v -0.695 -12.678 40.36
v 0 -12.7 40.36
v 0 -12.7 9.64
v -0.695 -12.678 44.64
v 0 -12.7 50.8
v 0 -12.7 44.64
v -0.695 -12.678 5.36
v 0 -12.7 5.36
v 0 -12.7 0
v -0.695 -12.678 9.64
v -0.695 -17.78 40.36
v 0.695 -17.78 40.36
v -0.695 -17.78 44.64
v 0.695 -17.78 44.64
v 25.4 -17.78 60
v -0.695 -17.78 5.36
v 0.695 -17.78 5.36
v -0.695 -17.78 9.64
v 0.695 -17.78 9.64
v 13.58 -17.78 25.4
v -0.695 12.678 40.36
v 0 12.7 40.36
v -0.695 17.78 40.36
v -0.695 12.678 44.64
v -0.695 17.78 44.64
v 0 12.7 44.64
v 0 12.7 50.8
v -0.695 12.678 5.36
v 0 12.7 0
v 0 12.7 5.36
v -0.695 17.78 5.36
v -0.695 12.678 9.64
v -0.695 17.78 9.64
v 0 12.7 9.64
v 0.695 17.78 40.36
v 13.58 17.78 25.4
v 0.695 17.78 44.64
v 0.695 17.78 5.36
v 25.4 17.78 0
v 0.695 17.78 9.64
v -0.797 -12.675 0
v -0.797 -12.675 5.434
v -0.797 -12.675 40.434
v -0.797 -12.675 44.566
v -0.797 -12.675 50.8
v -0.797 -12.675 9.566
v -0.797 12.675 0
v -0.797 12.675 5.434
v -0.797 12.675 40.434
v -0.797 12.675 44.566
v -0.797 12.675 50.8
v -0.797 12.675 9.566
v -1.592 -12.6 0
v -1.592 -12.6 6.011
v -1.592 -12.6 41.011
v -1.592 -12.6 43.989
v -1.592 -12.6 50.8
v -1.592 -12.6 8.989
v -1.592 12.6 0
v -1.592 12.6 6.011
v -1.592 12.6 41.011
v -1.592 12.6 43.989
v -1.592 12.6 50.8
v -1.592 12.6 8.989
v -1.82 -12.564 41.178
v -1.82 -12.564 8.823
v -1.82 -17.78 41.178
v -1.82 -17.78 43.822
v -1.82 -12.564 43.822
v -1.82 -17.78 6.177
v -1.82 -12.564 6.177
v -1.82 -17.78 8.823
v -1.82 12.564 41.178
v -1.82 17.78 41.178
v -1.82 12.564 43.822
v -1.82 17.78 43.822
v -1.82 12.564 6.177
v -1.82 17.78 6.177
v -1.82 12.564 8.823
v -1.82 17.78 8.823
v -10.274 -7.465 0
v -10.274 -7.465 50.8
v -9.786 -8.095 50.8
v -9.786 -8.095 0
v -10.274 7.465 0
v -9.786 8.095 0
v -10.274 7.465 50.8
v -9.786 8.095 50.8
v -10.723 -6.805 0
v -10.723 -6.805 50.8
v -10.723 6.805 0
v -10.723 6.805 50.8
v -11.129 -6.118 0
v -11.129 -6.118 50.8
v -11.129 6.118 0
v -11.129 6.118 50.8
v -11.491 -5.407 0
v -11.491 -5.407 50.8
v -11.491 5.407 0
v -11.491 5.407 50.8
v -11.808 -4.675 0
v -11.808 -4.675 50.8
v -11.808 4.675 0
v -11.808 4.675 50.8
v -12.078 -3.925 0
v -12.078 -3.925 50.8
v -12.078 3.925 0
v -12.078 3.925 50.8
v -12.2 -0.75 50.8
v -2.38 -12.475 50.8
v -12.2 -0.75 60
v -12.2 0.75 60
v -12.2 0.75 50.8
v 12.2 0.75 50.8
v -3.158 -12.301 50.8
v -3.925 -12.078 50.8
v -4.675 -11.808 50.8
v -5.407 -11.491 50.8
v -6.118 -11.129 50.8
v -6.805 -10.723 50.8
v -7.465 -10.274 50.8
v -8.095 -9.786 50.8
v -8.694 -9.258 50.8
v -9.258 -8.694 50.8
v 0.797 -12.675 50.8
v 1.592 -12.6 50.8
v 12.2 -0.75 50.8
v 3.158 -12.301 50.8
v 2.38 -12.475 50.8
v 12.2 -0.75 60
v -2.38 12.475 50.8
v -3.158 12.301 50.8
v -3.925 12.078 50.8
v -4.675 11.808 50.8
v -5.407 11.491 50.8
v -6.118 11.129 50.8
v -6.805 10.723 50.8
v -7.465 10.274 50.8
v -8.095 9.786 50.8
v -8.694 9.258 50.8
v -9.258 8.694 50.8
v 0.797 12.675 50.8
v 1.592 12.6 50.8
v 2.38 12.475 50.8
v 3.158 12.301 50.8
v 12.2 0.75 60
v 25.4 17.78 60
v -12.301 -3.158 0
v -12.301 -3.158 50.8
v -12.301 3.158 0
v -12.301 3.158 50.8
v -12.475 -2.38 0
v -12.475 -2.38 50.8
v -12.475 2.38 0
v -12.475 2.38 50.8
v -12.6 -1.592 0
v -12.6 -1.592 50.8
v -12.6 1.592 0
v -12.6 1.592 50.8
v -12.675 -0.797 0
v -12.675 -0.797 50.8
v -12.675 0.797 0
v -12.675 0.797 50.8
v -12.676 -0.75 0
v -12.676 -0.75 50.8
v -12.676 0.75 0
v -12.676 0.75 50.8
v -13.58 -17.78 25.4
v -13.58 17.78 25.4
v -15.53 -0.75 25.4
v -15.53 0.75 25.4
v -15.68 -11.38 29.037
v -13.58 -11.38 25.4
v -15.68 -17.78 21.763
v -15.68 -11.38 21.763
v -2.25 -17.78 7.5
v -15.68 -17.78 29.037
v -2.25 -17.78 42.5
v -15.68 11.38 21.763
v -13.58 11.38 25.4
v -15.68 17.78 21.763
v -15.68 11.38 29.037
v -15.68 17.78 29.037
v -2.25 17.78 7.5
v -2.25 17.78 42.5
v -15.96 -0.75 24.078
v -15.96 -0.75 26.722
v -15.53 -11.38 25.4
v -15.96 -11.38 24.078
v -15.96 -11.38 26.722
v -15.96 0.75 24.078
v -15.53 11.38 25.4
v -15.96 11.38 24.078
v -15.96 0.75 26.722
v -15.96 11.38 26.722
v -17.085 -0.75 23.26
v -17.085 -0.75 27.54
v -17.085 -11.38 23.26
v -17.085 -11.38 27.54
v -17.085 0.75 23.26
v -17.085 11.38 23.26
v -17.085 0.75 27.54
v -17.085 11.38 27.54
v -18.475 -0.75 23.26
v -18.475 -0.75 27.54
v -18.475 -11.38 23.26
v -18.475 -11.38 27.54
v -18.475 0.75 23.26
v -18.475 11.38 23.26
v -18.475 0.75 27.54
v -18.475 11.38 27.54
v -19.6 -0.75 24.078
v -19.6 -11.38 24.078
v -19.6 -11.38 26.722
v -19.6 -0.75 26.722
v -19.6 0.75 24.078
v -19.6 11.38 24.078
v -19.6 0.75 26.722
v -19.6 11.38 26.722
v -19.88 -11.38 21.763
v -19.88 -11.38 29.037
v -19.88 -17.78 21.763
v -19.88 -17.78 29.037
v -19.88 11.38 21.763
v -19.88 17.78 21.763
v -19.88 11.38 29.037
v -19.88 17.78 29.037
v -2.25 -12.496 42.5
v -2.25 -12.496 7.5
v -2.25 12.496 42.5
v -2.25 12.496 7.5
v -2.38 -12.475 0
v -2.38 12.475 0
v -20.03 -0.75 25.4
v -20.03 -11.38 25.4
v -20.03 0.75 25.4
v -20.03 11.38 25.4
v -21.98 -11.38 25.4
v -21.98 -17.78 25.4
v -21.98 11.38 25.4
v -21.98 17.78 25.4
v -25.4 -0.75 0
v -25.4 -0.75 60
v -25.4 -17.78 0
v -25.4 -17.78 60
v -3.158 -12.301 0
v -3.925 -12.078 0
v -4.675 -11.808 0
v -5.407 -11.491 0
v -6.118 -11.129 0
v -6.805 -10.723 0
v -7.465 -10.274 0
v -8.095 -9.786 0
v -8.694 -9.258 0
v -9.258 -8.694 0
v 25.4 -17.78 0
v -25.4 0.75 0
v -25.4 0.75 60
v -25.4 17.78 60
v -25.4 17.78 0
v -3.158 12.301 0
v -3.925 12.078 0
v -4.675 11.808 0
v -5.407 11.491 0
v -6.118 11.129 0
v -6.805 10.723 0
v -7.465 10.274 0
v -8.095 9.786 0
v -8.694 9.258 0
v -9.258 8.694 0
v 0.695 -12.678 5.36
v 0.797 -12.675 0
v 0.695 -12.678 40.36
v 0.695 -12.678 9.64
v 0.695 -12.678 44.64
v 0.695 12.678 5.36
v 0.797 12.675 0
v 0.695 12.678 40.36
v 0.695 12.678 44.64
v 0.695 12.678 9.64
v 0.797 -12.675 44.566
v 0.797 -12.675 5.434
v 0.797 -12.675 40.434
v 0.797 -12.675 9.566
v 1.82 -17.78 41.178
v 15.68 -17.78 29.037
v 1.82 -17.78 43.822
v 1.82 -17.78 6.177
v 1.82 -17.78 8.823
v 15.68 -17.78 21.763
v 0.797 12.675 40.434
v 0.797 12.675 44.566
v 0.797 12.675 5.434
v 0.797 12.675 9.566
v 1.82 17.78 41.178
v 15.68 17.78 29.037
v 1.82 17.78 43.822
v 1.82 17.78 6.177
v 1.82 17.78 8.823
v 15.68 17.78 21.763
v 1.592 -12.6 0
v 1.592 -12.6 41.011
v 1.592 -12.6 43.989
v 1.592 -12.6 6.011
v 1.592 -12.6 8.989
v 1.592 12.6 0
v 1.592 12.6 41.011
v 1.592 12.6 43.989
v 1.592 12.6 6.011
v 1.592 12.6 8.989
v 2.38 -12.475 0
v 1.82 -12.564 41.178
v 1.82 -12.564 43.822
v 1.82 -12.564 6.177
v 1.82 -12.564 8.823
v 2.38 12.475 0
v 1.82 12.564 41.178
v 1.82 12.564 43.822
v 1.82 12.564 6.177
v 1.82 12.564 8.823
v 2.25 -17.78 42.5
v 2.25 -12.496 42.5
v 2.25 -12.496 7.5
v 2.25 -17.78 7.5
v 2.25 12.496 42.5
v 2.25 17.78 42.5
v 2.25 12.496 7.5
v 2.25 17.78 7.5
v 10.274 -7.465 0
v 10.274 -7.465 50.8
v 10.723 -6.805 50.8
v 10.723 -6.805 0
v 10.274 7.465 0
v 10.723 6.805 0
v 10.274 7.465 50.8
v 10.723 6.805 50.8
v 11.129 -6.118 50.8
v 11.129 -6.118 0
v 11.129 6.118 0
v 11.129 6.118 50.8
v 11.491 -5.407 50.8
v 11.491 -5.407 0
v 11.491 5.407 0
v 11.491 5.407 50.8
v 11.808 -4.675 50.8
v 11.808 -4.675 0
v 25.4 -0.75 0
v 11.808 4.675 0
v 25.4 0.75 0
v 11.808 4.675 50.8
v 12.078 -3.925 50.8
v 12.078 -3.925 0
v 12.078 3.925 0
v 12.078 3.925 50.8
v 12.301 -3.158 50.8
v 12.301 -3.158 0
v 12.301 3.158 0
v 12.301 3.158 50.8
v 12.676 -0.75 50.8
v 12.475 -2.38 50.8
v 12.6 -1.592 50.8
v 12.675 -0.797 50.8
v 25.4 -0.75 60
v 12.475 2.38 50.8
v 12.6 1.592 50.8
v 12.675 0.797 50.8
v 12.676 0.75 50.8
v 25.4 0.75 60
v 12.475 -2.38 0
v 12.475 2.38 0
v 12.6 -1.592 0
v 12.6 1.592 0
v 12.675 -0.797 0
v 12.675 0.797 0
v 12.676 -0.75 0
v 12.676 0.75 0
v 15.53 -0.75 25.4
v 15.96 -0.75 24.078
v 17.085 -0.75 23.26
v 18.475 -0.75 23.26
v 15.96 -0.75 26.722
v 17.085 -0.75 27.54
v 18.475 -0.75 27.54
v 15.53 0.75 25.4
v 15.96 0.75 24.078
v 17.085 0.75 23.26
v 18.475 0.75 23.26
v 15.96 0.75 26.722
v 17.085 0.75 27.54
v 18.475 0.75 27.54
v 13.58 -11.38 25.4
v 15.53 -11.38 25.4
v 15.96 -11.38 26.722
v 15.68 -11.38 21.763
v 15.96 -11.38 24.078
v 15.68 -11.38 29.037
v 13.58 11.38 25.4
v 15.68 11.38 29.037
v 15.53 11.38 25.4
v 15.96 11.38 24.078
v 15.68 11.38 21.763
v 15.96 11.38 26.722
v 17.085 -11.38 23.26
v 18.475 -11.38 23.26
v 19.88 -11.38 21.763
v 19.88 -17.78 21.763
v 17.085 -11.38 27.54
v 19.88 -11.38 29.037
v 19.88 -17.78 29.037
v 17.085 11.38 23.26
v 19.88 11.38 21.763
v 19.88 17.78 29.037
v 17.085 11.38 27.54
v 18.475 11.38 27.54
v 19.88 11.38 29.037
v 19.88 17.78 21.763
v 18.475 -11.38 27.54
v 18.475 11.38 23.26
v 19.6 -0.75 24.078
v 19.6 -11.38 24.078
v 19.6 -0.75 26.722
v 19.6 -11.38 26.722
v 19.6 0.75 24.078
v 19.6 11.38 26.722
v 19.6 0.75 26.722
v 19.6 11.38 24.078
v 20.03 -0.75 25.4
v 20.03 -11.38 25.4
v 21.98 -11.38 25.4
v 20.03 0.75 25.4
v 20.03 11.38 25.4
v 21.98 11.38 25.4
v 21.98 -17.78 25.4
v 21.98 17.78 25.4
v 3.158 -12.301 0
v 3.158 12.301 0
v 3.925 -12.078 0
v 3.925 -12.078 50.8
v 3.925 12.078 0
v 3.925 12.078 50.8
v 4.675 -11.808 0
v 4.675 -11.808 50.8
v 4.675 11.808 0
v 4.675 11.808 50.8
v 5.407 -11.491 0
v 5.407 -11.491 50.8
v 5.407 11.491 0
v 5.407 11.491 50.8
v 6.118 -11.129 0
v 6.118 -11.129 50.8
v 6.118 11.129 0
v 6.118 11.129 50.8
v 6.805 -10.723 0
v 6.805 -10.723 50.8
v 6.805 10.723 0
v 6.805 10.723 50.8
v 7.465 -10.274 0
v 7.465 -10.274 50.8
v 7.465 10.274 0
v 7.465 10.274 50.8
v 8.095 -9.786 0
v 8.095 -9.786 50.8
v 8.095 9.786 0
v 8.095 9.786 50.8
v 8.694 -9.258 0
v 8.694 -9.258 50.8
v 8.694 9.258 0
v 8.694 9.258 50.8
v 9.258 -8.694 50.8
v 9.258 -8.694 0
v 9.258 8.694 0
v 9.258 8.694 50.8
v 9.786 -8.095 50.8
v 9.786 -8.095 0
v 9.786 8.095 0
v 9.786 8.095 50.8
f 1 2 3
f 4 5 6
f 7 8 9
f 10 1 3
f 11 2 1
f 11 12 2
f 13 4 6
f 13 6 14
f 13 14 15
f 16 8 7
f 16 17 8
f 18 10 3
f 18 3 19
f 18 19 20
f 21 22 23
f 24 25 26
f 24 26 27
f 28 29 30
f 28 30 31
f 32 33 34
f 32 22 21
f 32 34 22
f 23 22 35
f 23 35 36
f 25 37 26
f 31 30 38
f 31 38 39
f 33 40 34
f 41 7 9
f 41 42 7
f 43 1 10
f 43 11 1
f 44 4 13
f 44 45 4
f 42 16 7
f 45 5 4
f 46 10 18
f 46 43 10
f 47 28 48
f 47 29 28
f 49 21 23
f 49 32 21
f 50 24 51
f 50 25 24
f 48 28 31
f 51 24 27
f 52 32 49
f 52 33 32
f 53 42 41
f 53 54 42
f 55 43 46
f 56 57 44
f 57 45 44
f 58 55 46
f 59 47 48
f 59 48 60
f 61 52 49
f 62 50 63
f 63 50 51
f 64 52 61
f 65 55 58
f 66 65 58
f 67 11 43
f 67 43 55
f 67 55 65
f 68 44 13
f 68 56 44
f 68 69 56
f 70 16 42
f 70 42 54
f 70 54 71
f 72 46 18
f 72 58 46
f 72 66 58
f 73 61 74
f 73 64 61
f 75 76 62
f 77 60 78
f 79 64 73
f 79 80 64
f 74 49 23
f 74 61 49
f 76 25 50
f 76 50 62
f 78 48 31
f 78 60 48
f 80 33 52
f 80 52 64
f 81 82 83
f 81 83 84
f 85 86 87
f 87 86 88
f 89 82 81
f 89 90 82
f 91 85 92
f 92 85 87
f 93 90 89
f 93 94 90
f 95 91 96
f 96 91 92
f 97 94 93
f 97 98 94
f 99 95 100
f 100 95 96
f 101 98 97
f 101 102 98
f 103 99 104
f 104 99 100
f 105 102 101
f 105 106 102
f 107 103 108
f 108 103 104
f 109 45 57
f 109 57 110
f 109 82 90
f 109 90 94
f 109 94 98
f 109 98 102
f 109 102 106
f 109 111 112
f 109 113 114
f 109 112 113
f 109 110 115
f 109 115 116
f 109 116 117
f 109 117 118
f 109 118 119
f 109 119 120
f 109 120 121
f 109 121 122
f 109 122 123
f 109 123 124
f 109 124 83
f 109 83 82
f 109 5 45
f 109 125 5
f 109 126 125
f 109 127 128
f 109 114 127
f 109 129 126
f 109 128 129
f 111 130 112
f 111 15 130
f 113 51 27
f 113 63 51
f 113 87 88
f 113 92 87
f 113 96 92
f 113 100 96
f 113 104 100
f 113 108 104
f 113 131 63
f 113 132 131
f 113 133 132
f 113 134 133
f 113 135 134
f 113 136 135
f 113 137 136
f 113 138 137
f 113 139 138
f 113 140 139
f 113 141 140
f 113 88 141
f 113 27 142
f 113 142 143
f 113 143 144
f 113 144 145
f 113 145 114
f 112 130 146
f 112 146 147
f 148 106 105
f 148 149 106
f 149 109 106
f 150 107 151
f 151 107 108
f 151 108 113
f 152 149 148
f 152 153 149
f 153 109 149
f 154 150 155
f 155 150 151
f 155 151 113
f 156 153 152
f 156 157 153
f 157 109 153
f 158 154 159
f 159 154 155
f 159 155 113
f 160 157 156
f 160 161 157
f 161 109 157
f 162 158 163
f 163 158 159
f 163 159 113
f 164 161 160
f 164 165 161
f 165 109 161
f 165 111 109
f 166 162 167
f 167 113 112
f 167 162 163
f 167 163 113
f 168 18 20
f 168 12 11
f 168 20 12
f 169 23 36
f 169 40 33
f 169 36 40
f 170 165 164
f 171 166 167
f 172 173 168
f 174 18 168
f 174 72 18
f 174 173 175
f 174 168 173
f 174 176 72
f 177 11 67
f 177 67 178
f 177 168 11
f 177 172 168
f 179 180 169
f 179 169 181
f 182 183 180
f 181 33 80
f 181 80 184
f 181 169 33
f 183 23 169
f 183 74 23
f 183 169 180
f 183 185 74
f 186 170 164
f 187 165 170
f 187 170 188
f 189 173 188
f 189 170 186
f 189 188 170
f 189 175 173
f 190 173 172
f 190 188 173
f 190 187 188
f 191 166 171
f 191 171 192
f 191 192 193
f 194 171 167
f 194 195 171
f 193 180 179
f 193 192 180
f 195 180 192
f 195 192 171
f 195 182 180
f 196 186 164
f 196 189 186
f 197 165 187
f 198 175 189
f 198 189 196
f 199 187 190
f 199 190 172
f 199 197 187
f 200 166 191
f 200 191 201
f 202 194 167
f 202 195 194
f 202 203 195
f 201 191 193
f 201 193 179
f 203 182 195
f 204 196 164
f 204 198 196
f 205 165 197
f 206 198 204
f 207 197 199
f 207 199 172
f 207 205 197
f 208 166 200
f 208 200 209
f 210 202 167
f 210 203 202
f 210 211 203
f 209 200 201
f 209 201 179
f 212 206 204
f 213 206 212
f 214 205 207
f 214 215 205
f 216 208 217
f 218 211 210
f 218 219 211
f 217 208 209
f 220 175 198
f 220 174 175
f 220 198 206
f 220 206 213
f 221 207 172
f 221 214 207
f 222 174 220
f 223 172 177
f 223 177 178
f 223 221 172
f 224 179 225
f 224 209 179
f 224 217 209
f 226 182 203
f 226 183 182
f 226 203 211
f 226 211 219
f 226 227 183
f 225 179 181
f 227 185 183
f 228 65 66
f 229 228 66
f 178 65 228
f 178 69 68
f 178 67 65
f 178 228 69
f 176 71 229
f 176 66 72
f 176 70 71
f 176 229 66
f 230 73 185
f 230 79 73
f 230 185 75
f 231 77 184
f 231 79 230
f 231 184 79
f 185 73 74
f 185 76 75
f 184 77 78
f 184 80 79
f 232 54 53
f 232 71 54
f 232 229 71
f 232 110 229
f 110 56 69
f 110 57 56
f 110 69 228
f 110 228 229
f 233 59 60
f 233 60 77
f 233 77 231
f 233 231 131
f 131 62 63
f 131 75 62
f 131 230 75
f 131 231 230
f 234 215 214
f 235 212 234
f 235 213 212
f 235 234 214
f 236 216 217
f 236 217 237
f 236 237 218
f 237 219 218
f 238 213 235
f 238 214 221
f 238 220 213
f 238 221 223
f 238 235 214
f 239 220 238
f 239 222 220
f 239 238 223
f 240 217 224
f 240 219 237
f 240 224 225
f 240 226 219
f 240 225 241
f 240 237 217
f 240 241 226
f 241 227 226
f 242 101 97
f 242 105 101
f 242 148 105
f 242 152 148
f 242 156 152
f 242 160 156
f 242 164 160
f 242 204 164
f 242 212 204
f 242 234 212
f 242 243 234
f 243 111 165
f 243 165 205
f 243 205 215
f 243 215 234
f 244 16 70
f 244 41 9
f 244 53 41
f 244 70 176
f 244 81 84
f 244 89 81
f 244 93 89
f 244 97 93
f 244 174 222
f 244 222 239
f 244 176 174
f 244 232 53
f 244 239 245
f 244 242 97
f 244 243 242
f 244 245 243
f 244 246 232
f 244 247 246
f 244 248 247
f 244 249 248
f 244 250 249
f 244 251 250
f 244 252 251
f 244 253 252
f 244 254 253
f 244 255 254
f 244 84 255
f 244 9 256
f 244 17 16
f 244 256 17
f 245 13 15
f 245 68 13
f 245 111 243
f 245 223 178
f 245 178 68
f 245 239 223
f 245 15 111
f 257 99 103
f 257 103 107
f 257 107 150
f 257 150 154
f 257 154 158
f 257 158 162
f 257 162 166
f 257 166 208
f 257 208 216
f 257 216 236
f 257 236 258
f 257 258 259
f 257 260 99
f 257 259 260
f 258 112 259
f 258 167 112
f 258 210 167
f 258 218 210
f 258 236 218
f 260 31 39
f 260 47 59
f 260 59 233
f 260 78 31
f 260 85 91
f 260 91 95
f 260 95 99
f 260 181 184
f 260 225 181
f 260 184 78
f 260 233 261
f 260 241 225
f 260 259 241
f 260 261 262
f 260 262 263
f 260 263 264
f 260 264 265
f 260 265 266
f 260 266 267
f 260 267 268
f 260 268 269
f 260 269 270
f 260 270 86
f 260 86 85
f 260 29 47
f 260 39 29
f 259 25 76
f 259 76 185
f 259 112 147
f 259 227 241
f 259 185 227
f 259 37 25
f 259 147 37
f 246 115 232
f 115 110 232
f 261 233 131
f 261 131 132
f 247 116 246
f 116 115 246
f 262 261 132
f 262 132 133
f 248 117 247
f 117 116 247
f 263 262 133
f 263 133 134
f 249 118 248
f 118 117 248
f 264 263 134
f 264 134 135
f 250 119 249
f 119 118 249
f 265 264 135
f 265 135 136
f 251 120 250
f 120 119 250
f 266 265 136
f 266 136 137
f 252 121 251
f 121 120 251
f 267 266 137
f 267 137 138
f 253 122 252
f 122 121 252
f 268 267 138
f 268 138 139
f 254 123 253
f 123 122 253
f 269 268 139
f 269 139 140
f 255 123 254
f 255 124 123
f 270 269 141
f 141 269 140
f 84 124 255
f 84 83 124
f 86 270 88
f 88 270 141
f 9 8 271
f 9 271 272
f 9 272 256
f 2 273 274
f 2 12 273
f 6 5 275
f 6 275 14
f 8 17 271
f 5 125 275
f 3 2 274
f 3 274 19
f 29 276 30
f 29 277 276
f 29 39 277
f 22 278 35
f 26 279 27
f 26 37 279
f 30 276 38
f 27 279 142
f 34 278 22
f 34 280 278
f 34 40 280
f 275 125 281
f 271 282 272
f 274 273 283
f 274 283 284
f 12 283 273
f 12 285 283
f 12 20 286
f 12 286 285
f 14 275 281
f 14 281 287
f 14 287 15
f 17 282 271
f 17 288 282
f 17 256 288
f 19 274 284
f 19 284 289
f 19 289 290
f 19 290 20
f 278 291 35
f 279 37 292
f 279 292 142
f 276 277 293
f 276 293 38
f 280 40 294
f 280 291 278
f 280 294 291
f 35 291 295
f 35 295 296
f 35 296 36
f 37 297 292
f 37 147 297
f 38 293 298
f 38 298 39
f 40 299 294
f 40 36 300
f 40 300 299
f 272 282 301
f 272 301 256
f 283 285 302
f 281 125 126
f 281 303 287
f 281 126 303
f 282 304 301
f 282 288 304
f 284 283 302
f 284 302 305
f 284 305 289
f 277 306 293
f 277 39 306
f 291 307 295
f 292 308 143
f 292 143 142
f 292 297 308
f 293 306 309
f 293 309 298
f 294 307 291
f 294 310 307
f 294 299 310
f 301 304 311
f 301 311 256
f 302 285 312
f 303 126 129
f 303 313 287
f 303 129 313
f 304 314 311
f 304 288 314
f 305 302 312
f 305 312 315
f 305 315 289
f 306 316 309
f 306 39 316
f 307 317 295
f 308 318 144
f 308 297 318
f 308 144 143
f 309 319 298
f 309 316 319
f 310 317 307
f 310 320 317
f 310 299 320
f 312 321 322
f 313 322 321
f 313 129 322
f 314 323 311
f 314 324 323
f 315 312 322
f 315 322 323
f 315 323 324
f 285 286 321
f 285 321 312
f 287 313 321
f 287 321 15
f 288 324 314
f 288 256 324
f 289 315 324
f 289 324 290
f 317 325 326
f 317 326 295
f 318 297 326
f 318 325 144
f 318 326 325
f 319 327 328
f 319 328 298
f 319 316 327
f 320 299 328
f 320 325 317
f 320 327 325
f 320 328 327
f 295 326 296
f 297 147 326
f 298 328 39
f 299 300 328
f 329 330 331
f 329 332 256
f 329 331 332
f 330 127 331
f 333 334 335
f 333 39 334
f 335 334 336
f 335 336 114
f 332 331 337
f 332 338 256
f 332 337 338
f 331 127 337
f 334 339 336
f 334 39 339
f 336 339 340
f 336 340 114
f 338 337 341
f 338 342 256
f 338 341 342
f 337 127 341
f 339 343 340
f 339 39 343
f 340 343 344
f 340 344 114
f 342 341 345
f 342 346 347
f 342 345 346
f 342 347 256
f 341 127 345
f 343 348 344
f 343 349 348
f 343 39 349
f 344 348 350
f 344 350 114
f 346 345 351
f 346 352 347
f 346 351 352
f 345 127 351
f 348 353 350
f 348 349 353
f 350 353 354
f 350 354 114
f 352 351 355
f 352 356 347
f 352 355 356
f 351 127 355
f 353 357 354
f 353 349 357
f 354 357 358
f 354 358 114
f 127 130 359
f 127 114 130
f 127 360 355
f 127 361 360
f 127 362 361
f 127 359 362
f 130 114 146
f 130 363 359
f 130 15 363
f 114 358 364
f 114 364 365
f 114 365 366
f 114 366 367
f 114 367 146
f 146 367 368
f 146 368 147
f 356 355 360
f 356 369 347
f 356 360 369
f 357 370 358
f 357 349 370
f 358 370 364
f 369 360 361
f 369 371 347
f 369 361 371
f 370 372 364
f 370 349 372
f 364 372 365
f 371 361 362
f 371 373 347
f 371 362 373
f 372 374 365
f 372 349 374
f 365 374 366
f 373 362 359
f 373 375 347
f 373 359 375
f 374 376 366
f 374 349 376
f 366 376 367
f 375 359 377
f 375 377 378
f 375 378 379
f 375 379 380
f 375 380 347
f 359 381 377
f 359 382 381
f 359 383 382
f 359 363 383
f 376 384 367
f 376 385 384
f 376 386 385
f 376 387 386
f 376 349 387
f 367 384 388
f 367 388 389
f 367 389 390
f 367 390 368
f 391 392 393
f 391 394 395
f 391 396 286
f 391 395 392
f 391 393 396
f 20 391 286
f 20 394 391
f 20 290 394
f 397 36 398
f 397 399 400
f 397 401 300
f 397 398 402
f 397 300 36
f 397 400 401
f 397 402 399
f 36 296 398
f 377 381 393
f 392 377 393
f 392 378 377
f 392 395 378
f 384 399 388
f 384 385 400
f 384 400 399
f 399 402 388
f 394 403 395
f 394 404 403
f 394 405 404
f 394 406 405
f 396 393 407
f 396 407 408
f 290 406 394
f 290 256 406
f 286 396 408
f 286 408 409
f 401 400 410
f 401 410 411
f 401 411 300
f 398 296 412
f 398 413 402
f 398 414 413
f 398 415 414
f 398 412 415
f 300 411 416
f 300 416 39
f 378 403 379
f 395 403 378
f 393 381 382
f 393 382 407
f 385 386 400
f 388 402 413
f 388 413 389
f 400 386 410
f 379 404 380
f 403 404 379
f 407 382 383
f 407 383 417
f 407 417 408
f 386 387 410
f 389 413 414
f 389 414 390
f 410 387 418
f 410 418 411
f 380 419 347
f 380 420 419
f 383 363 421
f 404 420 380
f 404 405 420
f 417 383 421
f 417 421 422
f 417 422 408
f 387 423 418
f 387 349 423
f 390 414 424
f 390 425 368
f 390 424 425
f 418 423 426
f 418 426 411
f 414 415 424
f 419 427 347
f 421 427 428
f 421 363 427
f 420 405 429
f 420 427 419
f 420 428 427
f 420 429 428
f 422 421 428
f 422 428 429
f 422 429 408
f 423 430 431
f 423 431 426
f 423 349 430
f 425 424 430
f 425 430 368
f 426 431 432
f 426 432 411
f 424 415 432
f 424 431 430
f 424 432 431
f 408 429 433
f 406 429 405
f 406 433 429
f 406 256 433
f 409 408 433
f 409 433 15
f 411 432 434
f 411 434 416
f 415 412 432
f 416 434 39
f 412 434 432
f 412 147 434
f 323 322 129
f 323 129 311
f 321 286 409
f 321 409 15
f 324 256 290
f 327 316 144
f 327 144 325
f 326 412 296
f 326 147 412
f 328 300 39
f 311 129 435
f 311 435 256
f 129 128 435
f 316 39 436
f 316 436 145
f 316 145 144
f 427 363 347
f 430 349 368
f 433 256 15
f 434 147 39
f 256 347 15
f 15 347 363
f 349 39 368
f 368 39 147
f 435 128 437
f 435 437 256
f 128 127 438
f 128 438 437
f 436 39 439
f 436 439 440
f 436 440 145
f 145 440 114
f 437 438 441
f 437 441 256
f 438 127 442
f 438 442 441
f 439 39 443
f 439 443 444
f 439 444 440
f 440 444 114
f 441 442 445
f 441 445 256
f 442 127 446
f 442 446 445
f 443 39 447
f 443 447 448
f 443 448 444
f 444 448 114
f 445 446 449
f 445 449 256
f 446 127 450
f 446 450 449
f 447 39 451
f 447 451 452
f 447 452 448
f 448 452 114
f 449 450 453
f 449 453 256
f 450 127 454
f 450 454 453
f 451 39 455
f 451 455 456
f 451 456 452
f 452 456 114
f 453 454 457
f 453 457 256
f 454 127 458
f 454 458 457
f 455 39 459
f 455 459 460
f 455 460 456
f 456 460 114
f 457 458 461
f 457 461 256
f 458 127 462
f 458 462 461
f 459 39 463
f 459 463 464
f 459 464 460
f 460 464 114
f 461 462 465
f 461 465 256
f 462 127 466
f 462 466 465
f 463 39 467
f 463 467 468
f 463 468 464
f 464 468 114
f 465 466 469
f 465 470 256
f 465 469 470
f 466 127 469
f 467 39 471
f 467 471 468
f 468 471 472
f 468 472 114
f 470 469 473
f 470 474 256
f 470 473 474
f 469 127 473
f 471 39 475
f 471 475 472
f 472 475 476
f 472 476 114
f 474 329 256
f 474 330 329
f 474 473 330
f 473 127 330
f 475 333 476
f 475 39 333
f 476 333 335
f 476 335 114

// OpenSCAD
// file: ../../lib/TextGenerator.scad
//Draw text
scale([4,4,4]) drawtext("Hello World!");

//Draw character set
//scale([2,2,2]) drawtext(" !\"#$%&'()*+,-./0123456789:;<=>?@ABCDEFGHIJKLMNOPQRSTUVWXYZ[\\]^_`abcdefghijklmnopqrstuvwxyz{|}");

module drawtext(text,center=false) {
	//Characters
	chars = " !\"#$%&'()*+,-./0123456789:;<=>?@ABCDEFGHIJKLMNOPQRSTUVWXYZ[\\]^_`abcdefghijklmnopqrstuvwxyz{|}";

	//Chracter table defining 5x7 characters
	//Adapted from: http://www.geocities.com/dinceraydin/djlcdsim/chartable.js
	char_table = [ [ 0, 0, 0, 0, 0, 0, 0],
                  [ 4, 0, 4, 4, 4, 4, 4],
                  [ 0, 0, 0, 0,10,10,10],
                  [10,10,31,10,31,10,10],
                  [ 4,30, 5,14,20,15, 4],
                  [ 3,19, 8, 4, 2,25,24],
                  [13,18,21, 8,20,18,12],
                  [ 0, 0, 0, 0, 8, 4,12],
                  [ 2, 4, 8, 8, 8, 4, 2],
                  [ 8, 4, 2, 2, 2, 4, 8],
                  [ 0, 4,21,14,21, 4, 0],
                  [ 0, 4, 4,31, 4, 4, 0],
                  [ 8, 4,12, 0, 0, 0, 0],
                  [ 0, 0, 0,31, 0, 0, 0],
                  [12,12, 0, 0, 0, 0, 0],
                  [ 0,16, 8, 4, 2, 1, 0],
                  [14,17,25,21,19,17,14],
                  [14, 4, 4, 4, 4,12, 4],
                  [31, 8, 4, 2, 1,17,14],
                  [14,17, 1, 2, 4, 2,31],
                  [ 2, 2,31,18,10, 6, 2],
                  [14,17, 1, 1,30,16,31],
                  [14,17,17,30,16, 8, 6],
                  [ 8, 8, 8, 4, 2, 1,31],
                  [14,17,17,14,17,17,14],
                  [12, 2, 1,15,17,17,14],
                  [ 0,12,12, 0,12,12, 0],
                  [ 8, 4,12, 0,12,12, 0],
                  [ 2, 4, 8,16, 8, 4, 2],
                  [ 0, 0,31, 0,31, 0, 0],
                  [16, 8, 4, 2, 4, 8,16],
                  [ 4, 0, 4, 2, 1,17,14],
                  [14,21,21,13, 1,17,14],
                  [17,17,31,17,17,17,14],
                  [30,17,17,30,17,17,30],
                  [14,17,16,16,16,17,14],
                  [30,17,17,17,17,17,30],
                  [31,16,16,30,16,16,31],
                  [16,16,16,30,16,16,31],
                  [15,17,17,23,16,17,14],
                  [17,17,17,31,17,17,17],
                  [14, 4, 4, 4, 4, 4,14],
                  [12,18, 2, 2, 2, 2, 7],
                  [17,18,20,24,20,18,17],
                  [31,16,16,16,16,16,16],
                  [17,17,17,21,21,27,17],
                  [17,17,19,21,25,17,17],
                  [14,17,17,17,17,17,14],
                  [16,16,16,30,17,17,30],
                  [13,18,21,17,17,17,14],
                  [17,18,20,30,17,17,30],
                  [30, 1, 1,14,16,16,15],
                  [ 4, 4, 4, 4, 4, 4,31],
                  [14,17,17,17,17,17,17],
                  [ 4,10,17,17,17,17,17],
                  [10,21,21,21,17,17,17],
                  [17,17,10, 4,10,17,17],
                  [ 4, 4, 4,10,17,17,17],
                  [31,16, 8, 4, 2, 1,31],
                  [14, 8, 8, 8, 8, 8,14],
                  [ 0, 1, 2, 4, 8,16, 0],
                  [14, 2, 2, 2, 2, 2,14],
                  [ 0, 0, 0, 0,17,10, 4],
                  [31, 0, 0, 0, 0, 0, 0],
                  [ 0, 0, 0, 0, 2, 4, 8],
                  [15,17,15, 1,14, 0, 0],
                  [30,17,17,25,22,16,16],
                  [14,17,16,16,14, 0, 0],
                  [15,17,17,19,13, 1, 1],
                  [14,16,31,17,14, 0, 0],
                  [ 8, 8, 8,28, 8, 9, 6],
                  [14, 1,15,17,15, 0, 0],
                  [17,17,17,25,22,16,16],
                  [14, 4, 4, 4,12, 0, 4],
                  [12,18, 2, 2, 2, 6, 2],
                  [18,20,24,20,18,16,16],
                  [14, 4, 4, 4, 4, 4,12],
                  [17,17,21,21,26, 0, 0],
                  [17,17,17,25,22, 0, 0],
                  [14,17,17,17,14, 0, 0],
                  [16,16,30,17,30, 0, 0],
                  [ 1, 1,15,19,13, 0, 0],
                  [16,16,16,25,22, 0, 0],
                  [30, 1,14,16,15, 0, 0],
                  [ 6, 9, 8, 8,28, 8, 8],
                  [13,19,17,17,17, 0, 0],
                  [ 4,10,17,17,17, 0, 0],
                  [10,21,21,17,17, 0, 0],
                  [17,10, 4,10,17, 0, 0],
                  [14, 1,15,17,17, 0, 0],
                  [31, 8, 4, 2,31, 0, 0],
                  [ 2, 4, 4, 8, 4, 4, 2],
                  [ 4, 4, 4, 4, 4, 4, 4],
                  [ 8, 4, 4, 2, 4, 4, 8] ];

	//Binary decode table
	dec_table = [ "00000", "00001", "00010", "00011", "00100", "00101",
  	            "00110", "00111", "01000", "01001", "01010", "01011",
  	            "01100", "01101", "01110", "01111", "10000", "10001",
  	            "10010", "10011", "10100", "10101", "10110", "10111",
	            "11000", "11001", "11010", "11011", "11100", "11101",
	            "11110", "11111" ];

    //Process string one character at a time
    for(itext = [0:len(text)-1]) {
        assign(length = len(text)) {
            //Convert character to index
            assign(ichar = search(text[itext],chars,1)[0]) {
                //Decode character - rows
                for(irow = [0:6]) {
                    assign(val = dec_table[char_table[ichar][irow]]) {
                        //Decode character - cols
                        for(icol = [0:4]) {
                            assign(bit = search(val[icol],"01",1)[0]) {
                                if(bit) {
                                    //Output cube
                                    if (center)
                                        translate([icol - 2.5 +
                                        (6*itext)-len(text)/2, irow-3.5,0])
                                            cube([1.0001,1.0001,1]);
                                    else {
                                        translate([icol + (6*itext), irow, 0])
                                            cube([1.0001,1.0001,1]);
                                    }
                                }
                            }
                        }
                    }
                }
            }
	}
}
}
// main file
include <../../../parameters.scad>

use <../../888_1026.scad>


888_1026_drillhelper();
